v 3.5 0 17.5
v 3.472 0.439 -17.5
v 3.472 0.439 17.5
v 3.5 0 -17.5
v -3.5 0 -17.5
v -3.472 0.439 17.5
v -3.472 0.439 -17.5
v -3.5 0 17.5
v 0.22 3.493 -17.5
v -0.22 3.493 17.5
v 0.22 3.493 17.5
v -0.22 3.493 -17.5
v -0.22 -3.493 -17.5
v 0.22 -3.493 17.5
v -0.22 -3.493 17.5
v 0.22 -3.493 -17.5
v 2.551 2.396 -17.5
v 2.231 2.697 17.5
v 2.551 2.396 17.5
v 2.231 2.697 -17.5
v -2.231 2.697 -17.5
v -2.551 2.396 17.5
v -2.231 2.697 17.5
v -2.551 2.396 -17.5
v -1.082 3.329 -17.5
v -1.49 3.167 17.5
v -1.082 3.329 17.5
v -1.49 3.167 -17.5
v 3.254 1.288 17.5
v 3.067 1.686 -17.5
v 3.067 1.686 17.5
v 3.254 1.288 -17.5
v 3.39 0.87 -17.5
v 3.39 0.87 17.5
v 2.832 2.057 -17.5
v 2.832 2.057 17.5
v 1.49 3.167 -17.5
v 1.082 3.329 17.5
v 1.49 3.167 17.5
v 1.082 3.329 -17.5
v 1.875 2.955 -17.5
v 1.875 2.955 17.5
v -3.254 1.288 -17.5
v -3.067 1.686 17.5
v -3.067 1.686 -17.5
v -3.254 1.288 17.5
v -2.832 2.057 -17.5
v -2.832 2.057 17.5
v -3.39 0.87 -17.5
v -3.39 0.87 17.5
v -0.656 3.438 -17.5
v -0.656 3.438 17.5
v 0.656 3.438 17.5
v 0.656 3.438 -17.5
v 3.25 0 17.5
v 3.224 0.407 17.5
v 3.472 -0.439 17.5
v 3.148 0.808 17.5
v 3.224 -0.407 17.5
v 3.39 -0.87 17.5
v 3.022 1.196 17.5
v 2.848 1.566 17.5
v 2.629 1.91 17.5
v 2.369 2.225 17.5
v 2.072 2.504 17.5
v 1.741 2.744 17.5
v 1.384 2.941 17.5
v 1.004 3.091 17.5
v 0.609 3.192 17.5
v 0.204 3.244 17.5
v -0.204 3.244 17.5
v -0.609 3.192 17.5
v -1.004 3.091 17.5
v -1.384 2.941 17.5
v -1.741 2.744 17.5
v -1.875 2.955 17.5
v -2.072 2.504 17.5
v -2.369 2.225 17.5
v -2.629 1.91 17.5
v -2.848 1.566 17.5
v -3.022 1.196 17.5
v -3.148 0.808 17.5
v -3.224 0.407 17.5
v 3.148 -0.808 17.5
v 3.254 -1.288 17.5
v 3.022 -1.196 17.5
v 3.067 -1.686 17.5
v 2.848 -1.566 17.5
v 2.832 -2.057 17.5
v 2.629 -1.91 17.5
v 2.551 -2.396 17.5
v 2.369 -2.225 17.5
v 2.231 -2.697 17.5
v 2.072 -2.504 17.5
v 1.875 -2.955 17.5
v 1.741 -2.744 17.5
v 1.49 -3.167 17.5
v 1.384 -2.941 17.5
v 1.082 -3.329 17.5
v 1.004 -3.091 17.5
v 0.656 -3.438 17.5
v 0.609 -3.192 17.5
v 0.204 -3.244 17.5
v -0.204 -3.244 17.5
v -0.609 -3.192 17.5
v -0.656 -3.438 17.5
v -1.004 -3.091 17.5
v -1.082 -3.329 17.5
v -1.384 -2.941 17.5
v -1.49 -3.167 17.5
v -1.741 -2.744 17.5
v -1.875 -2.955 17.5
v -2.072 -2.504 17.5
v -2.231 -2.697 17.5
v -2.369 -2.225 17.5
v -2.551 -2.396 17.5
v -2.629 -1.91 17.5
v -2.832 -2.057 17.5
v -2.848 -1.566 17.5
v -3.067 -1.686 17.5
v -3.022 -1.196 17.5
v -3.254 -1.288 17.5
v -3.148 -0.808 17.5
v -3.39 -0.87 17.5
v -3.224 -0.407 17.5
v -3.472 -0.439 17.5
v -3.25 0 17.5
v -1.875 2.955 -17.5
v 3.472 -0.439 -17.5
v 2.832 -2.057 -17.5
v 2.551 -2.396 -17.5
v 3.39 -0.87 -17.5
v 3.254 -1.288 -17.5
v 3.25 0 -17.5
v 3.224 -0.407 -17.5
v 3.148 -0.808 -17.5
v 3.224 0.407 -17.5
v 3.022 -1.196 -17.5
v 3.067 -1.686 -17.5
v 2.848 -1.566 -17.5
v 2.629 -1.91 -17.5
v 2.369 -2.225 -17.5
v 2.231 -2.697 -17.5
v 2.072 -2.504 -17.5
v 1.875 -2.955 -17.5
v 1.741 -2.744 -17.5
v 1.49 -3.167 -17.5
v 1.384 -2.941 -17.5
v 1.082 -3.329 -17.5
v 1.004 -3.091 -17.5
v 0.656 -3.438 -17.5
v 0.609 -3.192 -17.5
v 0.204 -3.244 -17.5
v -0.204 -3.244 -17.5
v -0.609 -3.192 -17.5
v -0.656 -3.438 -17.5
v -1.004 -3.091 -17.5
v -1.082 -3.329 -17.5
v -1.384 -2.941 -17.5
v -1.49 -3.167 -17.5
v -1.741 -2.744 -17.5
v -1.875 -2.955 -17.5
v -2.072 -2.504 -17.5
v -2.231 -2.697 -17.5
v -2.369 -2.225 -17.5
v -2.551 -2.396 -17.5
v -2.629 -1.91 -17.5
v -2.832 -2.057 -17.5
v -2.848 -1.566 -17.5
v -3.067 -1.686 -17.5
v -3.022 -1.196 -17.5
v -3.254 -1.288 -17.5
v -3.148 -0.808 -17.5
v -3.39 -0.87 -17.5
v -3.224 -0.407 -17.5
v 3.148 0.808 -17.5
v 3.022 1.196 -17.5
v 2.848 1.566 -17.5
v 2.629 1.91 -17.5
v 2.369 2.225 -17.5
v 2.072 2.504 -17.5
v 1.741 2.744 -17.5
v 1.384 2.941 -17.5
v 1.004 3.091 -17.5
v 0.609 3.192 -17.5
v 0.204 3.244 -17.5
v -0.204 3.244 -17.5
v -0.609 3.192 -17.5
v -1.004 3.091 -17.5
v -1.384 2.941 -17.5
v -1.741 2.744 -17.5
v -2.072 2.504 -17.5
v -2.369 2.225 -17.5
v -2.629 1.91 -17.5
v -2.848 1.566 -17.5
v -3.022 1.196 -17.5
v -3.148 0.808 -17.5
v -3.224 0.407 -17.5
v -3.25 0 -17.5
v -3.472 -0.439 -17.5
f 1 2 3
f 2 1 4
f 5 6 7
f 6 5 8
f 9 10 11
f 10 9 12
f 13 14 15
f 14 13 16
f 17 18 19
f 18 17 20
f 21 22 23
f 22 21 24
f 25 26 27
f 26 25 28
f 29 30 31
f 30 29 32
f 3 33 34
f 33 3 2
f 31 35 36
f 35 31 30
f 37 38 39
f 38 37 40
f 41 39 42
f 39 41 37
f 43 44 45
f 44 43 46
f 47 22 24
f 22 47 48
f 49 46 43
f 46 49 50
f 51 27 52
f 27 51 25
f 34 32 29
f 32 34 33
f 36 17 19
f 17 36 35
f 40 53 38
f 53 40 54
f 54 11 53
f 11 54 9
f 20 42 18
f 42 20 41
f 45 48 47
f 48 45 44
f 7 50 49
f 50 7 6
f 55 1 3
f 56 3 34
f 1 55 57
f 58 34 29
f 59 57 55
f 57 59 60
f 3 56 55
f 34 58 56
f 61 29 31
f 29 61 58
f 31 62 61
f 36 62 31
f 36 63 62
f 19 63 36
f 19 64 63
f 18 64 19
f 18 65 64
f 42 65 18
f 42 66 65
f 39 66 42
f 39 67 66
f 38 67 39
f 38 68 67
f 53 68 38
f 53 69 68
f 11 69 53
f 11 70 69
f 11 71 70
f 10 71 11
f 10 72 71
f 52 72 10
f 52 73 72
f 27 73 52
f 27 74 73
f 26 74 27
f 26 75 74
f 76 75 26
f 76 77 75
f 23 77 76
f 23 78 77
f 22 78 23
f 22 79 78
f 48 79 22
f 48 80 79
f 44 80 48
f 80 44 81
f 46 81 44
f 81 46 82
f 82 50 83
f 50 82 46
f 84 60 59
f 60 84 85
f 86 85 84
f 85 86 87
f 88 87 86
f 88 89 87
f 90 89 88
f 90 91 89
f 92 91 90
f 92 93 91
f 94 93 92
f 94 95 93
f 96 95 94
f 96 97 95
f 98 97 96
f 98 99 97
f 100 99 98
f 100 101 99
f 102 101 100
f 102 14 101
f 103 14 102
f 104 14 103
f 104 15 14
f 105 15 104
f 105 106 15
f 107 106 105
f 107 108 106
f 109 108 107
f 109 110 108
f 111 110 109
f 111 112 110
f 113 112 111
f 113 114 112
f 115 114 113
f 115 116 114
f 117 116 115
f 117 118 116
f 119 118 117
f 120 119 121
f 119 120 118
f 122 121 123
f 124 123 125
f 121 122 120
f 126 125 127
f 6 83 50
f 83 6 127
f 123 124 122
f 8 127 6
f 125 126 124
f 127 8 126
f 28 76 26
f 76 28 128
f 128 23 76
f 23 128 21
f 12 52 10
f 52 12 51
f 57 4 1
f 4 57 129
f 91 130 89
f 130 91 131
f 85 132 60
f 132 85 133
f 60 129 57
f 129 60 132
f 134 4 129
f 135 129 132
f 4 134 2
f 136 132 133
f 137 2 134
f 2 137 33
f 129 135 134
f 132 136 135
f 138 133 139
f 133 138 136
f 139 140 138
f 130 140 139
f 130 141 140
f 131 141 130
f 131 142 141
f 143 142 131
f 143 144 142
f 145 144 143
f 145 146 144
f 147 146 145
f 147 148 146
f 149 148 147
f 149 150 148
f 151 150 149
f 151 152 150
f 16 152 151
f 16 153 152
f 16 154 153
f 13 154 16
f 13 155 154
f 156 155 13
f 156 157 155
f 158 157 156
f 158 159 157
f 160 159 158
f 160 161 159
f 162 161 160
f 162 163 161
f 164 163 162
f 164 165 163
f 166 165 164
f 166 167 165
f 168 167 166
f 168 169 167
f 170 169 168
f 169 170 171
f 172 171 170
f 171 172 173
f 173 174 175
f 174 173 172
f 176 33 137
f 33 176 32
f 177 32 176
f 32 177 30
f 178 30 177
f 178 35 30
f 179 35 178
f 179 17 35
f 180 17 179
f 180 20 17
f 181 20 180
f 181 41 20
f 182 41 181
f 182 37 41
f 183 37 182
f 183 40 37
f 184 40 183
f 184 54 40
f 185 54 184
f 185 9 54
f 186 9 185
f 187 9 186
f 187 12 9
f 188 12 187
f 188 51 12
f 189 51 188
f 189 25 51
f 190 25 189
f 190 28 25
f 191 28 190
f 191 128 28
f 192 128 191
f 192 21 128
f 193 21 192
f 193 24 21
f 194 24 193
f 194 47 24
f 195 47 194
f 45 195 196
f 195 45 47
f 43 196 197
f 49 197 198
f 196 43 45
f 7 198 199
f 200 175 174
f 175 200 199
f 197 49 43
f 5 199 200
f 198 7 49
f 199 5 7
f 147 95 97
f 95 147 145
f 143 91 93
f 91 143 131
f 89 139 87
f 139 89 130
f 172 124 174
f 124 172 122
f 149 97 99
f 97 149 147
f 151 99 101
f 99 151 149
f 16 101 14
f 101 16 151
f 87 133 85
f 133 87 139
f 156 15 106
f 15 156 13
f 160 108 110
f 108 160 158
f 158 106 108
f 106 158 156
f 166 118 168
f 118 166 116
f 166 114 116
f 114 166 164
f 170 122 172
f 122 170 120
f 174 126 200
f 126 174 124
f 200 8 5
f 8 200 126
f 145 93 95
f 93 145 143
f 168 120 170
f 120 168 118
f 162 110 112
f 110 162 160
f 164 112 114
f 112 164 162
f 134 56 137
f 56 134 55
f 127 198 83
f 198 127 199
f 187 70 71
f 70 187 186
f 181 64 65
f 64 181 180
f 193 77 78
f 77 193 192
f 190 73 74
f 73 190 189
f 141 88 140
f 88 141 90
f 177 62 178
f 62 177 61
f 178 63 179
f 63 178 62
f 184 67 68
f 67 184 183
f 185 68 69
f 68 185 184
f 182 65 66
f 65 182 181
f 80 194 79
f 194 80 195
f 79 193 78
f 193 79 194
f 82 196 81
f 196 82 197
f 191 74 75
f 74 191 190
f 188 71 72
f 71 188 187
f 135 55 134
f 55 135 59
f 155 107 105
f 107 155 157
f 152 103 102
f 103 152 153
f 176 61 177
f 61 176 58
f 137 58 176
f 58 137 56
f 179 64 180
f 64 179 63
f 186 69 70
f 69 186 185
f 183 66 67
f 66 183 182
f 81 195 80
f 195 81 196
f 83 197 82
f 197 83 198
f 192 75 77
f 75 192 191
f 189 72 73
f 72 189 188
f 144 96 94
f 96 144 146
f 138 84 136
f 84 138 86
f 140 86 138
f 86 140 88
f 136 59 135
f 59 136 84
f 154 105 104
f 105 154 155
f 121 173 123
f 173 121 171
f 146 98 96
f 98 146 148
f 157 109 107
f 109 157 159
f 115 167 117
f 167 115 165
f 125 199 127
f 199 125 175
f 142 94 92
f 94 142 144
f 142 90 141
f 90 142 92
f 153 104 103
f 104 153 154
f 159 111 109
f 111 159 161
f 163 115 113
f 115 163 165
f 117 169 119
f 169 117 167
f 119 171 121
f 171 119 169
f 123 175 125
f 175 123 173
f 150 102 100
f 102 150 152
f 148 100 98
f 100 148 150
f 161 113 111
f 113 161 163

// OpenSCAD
$fn = 50;


difference() {
	union() {
		translate(v = [0, 0, -17.5000000000]) {
			cylinder(h = 35, r = 3.5000000000);
		}
	}
	union() {
		translate(v = [0, 0, -100.0000000000]) {
			cylinder(h = 200, r = 3.2500000000);
		}
	}
}
